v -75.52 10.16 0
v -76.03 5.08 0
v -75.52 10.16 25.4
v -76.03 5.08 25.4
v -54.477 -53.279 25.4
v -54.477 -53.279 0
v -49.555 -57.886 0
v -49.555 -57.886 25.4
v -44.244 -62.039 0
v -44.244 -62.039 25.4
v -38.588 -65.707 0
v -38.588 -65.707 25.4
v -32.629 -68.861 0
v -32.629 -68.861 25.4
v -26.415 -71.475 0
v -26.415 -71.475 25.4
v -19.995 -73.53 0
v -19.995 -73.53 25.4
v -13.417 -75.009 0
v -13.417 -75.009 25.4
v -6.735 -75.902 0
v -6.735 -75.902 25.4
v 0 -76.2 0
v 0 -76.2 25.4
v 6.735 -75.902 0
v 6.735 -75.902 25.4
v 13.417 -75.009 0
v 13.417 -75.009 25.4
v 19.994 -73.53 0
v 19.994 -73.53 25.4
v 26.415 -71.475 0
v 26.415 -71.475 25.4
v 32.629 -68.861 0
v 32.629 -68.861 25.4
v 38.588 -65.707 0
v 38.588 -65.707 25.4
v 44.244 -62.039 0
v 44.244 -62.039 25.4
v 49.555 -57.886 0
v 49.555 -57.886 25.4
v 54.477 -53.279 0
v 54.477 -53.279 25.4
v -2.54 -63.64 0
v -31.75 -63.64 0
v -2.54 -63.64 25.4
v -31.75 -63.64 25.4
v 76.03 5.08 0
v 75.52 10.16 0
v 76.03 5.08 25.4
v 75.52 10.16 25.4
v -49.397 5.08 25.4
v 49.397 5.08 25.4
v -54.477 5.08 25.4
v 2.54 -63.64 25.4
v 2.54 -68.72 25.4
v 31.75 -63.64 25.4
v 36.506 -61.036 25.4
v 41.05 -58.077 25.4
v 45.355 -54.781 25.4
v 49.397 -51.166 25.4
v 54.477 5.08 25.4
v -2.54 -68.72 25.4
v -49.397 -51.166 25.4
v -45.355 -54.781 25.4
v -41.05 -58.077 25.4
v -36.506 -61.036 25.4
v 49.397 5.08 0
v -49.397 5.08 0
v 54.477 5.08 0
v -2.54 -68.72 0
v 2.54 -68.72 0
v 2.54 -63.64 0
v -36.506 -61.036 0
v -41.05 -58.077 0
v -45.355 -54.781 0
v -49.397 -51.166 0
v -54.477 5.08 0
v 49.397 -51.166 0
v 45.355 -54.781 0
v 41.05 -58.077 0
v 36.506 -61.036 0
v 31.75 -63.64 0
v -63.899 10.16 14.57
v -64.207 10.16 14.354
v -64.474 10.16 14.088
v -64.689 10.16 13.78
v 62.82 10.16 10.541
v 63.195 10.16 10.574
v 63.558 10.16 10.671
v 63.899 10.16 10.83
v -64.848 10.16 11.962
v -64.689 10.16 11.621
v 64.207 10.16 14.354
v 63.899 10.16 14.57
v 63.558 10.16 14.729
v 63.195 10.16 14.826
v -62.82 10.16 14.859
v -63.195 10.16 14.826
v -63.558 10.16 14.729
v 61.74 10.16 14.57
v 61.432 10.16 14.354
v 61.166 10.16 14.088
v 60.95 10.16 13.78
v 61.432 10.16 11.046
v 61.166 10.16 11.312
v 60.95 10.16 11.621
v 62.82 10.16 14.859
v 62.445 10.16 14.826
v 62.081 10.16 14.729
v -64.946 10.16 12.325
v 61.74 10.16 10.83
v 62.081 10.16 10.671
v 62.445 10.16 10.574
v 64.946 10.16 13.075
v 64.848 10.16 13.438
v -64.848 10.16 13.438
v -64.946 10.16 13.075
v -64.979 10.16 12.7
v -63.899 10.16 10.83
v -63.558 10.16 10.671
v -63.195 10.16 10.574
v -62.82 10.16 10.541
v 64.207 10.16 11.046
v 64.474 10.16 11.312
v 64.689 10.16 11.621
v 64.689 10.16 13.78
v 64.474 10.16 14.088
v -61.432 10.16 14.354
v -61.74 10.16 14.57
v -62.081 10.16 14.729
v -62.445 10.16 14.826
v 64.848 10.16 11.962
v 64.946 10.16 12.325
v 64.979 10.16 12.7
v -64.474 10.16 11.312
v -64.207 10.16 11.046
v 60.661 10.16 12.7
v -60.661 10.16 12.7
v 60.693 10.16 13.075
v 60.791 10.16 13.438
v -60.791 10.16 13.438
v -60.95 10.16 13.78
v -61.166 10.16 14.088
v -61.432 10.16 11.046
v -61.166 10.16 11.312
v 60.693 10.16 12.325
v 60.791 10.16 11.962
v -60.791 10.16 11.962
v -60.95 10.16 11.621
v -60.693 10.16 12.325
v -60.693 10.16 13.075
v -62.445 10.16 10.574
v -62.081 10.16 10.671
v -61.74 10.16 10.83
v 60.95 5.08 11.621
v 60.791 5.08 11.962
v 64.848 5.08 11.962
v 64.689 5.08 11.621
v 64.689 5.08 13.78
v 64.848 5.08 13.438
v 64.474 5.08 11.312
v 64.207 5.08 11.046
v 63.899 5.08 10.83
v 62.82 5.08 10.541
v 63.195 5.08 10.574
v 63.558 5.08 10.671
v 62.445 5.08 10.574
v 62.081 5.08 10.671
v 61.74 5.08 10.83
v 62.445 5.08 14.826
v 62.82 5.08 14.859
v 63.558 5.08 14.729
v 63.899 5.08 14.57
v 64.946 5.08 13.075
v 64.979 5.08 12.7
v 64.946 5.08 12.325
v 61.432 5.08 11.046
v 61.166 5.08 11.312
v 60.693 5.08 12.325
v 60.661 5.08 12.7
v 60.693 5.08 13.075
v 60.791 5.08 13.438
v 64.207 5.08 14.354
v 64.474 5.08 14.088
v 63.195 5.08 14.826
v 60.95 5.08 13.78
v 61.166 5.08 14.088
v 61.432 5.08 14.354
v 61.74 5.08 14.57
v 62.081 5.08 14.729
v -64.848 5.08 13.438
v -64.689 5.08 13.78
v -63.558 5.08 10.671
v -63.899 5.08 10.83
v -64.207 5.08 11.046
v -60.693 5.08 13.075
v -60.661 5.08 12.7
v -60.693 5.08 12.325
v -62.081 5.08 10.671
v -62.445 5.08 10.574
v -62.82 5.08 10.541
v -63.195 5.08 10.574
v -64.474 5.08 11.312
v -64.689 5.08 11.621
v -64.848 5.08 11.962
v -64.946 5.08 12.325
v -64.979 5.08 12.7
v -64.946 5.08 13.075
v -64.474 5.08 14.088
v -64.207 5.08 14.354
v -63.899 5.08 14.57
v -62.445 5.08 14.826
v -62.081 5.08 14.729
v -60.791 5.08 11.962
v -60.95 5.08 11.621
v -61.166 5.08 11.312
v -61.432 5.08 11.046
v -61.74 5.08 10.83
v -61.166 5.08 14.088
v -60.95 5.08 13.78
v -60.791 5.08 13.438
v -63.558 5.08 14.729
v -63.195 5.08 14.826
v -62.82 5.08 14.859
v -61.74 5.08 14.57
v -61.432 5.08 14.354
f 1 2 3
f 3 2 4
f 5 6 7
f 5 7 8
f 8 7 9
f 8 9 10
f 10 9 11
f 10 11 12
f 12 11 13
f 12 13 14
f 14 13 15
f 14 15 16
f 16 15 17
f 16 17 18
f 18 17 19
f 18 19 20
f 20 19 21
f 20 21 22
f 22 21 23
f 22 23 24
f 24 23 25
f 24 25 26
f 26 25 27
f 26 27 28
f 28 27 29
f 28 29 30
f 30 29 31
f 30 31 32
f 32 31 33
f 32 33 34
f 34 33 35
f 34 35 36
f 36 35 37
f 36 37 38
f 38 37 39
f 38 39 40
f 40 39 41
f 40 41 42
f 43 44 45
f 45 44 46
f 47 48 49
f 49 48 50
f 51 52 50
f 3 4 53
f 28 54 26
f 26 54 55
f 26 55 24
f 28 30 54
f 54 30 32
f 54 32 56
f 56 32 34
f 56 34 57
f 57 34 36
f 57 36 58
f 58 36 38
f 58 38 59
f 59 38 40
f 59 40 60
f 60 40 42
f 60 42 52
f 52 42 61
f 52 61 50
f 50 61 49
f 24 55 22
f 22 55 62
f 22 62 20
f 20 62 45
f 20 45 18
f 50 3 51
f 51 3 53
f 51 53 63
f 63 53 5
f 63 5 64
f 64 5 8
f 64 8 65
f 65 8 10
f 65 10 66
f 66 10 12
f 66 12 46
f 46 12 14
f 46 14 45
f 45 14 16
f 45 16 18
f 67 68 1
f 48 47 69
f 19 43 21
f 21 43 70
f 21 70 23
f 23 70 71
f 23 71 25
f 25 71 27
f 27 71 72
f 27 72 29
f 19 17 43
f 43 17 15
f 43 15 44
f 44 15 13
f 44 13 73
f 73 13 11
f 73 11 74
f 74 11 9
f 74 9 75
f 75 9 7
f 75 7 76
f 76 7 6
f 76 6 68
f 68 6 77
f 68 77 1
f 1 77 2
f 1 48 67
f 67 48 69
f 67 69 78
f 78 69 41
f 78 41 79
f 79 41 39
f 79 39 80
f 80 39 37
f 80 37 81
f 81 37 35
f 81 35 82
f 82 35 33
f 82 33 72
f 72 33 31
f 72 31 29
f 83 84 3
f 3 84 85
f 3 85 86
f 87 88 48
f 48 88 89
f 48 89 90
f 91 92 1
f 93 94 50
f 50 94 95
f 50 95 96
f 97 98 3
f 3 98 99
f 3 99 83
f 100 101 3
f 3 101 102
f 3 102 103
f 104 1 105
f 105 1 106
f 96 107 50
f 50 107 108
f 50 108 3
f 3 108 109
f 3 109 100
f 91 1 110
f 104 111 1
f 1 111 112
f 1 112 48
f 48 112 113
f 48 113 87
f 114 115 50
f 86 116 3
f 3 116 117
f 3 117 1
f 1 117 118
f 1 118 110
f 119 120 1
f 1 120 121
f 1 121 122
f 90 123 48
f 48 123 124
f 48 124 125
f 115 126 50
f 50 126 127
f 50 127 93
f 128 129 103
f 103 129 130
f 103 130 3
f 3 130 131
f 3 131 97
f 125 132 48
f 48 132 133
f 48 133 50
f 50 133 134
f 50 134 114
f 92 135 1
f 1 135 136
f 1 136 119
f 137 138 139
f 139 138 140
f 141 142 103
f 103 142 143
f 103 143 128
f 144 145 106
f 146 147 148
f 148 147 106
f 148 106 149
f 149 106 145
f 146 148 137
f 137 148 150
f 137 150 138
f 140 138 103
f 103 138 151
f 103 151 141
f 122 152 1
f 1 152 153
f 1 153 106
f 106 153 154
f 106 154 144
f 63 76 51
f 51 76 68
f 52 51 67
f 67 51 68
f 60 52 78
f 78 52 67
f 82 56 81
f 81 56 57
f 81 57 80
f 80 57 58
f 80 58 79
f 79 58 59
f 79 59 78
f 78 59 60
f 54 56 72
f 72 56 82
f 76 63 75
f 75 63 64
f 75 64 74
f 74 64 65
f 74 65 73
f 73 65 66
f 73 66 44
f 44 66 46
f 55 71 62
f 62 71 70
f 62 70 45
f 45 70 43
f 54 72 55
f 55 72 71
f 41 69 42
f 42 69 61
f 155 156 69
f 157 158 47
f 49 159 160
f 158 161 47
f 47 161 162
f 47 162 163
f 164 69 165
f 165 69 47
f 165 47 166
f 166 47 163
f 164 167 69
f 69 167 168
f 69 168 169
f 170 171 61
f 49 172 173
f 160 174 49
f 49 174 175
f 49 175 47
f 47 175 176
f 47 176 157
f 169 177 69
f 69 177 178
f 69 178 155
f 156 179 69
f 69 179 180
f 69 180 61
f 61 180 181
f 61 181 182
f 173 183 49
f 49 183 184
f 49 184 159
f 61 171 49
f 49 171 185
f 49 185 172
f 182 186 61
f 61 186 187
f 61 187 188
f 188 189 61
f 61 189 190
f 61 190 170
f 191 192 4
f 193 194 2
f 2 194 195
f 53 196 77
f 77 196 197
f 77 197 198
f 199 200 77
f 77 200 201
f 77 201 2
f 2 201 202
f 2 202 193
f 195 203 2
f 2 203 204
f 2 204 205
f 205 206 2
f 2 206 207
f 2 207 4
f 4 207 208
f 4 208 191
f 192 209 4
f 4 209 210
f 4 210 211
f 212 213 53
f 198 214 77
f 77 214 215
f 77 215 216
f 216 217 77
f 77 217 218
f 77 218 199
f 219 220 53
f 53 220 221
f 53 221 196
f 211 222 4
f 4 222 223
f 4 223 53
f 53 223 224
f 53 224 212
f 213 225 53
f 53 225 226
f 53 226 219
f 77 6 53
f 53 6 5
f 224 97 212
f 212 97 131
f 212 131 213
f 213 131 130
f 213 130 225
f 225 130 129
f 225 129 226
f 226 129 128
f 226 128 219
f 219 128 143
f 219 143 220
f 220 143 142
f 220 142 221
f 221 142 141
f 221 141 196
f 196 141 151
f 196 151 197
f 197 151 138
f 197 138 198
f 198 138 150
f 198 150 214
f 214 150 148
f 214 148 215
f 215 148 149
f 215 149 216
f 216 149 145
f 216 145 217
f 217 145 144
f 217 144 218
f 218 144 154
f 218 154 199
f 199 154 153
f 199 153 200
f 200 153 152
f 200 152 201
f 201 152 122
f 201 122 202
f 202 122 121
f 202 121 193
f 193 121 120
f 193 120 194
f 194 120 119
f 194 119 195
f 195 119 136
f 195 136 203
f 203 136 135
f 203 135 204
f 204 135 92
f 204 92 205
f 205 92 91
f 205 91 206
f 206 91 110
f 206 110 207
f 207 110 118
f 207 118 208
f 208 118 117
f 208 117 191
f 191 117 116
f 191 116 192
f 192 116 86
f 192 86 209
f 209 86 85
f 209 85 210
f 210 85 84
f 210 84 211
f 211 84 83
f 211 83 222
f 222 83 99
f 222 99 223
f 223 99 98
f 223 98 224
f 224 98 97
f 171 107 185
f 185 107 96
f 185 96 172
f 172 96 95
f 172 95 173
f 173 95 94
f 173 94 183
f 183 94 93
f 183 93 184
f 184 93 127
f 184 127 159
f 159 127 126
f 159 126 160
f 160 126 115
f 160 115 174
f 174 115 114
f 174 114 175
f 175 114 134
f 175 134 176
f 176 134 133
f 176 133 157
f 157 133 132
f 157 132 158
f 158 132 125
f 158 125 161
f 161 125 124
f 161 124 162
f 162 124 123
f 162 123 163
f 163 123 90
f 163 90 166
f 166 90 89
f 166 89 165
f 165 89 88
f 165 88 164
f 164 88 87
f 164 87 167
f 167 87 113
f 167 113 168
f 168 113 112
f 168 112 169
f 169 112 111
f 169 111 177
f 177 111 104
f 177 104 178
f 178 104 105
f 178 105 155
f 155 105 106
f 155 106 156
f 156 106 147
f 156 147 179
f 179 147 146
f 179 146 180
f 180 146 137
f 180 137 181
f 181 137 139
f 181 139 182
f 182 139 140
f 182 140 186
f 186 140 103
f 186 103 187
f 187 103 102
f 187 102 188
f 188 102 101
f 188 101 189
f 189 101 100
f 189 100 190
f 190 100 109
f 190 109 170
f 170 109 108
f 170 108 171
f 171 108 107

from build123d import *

# Parameters (mm, degrees)
SKETCH2_R           = 76.2
BOSS_EXTRUDE1_DEPTH = 25.4
CUT_EXTRUDE1_DEPTH  = 76.2
CUT_EXTRUDE2_DEPTH  = 76.2
SKETCH8_W           = 5.08
SKETCH8_H           = 5.08
CUT_EXTRUDE4_DEPTH  = 50.8
CUT_EXTRUDE5_DEPTH  = 26.4
SKETCH10_R          = 2.159
CUT_EXTRUDE6_DEPTH  = 25.4


with BuildPart() as part:
    # Sketch2 → Boss-Extrude1 (new body)
    with BuildSketch(Plane.XY):
        Circle(SKETCH2_R)
    extrude(amount=BOSS_EXTRUDE1_DEPTH)

    # Sketch4 → Cut-Extrude1 (cut)
    with BuildSketch(Plane.XY.offset(25.4)):
        with BuildLine():
            Line((-75.519629236, 10.16), (75.519629236, 10.16))
            ThreePointArc((75.519629236, 10.16), (0, 76.2), (-75.519629236, 10.16))
        make_face()
    extrude(amount=-CUT_EXTRUDE1_DEPTH, mode=Mode.SUBTRACT)

    # Sketch5 → Cut-Extrude2 (cut)
    with BuildSketch(Plane.XY.offset(25.4)):
        with BuildLine():
            Line((49.396930897, 5.08), (-49.396930897, 5.08))
            Line((-49.396930897, 5.08), (-49.396930897, -51.166371944))
            ThreePointArc((-49.396930897, -51.166371944), (-41.049983197, -58.077132157), (-31.75, -63.639546667))
            Line((-31.75, -63.639546667), (31.75, -63.639546667))
            ThreePointArc((31.75, -63.639546667), (41.049983197, -58.077132157), (49.396930897, -51.166371944))
            Line((49.396930897, -51.166371944), (49.396930897, 5.08))
        make_face()
    extrude(amount=-CUT_EXTRUDE2_DEPTH, mode=Mode.SUBTRACT)

    # Sketch8 → Cut-Extrude4 (cut)
    with BuildSketch(Plane.XY.offset(25.4)):
        with Locations((0, -66.179546667)):
            Rectangle(SKETCH8_W, SKETCH8_H)
    extrude(amount=-CUT_EXTRUDE4_DEPTH, mode=Mode.SUBTRACT)

    # Sketch9 → Cut-Extrude5 (cut, through all)
    with BuildSketch(Plane.XY.offset(25.4)):
        with BuildLine():
            Line((54.476930897, 5.08), (76.030478099, 5.08))
            ThreePointArc((76.030478099, 5.08), (71.480790805, -26.399555791), (54.476930897, -53.279489487))
            Line((54.476930897, -53.279489487), (54.476930897, 5.08))
        make_face()
        with BuildLine():
            Line((-54.476930897, 5.08), (-54.476930897, -53.279489487))
            ThreePointArc((-54.476930897, -53.279489487), (-71.480790805, -26.399555791), (-76.030478099, 5.08))
            Line((-76.030478099, 5.08), (-54.476930897, 5.08))
        make_face()
    extrude(amount=-CUT_EXTRUDE5_DEPTH, mode=Mode.SUBTRACT)

    # Sketch10 → Cut-Extrude6 (cut)
    with BuildSketch(Plane(origin=(0, 10.16, 0), x_dir=(1, 0, 0), z_dir=(0, 1, 0))):
        with Locations((62.819629236, -12.7)):
            Circle(SKETCH10_R)
        with Locations((-62.819629236, -12.7)):
            Circle(SKETCH10_R)
    extrude(amount=-CUT_EXTRUDE6_DEPTH, mode=Mode.SUBTRACT)


solid = part.part
